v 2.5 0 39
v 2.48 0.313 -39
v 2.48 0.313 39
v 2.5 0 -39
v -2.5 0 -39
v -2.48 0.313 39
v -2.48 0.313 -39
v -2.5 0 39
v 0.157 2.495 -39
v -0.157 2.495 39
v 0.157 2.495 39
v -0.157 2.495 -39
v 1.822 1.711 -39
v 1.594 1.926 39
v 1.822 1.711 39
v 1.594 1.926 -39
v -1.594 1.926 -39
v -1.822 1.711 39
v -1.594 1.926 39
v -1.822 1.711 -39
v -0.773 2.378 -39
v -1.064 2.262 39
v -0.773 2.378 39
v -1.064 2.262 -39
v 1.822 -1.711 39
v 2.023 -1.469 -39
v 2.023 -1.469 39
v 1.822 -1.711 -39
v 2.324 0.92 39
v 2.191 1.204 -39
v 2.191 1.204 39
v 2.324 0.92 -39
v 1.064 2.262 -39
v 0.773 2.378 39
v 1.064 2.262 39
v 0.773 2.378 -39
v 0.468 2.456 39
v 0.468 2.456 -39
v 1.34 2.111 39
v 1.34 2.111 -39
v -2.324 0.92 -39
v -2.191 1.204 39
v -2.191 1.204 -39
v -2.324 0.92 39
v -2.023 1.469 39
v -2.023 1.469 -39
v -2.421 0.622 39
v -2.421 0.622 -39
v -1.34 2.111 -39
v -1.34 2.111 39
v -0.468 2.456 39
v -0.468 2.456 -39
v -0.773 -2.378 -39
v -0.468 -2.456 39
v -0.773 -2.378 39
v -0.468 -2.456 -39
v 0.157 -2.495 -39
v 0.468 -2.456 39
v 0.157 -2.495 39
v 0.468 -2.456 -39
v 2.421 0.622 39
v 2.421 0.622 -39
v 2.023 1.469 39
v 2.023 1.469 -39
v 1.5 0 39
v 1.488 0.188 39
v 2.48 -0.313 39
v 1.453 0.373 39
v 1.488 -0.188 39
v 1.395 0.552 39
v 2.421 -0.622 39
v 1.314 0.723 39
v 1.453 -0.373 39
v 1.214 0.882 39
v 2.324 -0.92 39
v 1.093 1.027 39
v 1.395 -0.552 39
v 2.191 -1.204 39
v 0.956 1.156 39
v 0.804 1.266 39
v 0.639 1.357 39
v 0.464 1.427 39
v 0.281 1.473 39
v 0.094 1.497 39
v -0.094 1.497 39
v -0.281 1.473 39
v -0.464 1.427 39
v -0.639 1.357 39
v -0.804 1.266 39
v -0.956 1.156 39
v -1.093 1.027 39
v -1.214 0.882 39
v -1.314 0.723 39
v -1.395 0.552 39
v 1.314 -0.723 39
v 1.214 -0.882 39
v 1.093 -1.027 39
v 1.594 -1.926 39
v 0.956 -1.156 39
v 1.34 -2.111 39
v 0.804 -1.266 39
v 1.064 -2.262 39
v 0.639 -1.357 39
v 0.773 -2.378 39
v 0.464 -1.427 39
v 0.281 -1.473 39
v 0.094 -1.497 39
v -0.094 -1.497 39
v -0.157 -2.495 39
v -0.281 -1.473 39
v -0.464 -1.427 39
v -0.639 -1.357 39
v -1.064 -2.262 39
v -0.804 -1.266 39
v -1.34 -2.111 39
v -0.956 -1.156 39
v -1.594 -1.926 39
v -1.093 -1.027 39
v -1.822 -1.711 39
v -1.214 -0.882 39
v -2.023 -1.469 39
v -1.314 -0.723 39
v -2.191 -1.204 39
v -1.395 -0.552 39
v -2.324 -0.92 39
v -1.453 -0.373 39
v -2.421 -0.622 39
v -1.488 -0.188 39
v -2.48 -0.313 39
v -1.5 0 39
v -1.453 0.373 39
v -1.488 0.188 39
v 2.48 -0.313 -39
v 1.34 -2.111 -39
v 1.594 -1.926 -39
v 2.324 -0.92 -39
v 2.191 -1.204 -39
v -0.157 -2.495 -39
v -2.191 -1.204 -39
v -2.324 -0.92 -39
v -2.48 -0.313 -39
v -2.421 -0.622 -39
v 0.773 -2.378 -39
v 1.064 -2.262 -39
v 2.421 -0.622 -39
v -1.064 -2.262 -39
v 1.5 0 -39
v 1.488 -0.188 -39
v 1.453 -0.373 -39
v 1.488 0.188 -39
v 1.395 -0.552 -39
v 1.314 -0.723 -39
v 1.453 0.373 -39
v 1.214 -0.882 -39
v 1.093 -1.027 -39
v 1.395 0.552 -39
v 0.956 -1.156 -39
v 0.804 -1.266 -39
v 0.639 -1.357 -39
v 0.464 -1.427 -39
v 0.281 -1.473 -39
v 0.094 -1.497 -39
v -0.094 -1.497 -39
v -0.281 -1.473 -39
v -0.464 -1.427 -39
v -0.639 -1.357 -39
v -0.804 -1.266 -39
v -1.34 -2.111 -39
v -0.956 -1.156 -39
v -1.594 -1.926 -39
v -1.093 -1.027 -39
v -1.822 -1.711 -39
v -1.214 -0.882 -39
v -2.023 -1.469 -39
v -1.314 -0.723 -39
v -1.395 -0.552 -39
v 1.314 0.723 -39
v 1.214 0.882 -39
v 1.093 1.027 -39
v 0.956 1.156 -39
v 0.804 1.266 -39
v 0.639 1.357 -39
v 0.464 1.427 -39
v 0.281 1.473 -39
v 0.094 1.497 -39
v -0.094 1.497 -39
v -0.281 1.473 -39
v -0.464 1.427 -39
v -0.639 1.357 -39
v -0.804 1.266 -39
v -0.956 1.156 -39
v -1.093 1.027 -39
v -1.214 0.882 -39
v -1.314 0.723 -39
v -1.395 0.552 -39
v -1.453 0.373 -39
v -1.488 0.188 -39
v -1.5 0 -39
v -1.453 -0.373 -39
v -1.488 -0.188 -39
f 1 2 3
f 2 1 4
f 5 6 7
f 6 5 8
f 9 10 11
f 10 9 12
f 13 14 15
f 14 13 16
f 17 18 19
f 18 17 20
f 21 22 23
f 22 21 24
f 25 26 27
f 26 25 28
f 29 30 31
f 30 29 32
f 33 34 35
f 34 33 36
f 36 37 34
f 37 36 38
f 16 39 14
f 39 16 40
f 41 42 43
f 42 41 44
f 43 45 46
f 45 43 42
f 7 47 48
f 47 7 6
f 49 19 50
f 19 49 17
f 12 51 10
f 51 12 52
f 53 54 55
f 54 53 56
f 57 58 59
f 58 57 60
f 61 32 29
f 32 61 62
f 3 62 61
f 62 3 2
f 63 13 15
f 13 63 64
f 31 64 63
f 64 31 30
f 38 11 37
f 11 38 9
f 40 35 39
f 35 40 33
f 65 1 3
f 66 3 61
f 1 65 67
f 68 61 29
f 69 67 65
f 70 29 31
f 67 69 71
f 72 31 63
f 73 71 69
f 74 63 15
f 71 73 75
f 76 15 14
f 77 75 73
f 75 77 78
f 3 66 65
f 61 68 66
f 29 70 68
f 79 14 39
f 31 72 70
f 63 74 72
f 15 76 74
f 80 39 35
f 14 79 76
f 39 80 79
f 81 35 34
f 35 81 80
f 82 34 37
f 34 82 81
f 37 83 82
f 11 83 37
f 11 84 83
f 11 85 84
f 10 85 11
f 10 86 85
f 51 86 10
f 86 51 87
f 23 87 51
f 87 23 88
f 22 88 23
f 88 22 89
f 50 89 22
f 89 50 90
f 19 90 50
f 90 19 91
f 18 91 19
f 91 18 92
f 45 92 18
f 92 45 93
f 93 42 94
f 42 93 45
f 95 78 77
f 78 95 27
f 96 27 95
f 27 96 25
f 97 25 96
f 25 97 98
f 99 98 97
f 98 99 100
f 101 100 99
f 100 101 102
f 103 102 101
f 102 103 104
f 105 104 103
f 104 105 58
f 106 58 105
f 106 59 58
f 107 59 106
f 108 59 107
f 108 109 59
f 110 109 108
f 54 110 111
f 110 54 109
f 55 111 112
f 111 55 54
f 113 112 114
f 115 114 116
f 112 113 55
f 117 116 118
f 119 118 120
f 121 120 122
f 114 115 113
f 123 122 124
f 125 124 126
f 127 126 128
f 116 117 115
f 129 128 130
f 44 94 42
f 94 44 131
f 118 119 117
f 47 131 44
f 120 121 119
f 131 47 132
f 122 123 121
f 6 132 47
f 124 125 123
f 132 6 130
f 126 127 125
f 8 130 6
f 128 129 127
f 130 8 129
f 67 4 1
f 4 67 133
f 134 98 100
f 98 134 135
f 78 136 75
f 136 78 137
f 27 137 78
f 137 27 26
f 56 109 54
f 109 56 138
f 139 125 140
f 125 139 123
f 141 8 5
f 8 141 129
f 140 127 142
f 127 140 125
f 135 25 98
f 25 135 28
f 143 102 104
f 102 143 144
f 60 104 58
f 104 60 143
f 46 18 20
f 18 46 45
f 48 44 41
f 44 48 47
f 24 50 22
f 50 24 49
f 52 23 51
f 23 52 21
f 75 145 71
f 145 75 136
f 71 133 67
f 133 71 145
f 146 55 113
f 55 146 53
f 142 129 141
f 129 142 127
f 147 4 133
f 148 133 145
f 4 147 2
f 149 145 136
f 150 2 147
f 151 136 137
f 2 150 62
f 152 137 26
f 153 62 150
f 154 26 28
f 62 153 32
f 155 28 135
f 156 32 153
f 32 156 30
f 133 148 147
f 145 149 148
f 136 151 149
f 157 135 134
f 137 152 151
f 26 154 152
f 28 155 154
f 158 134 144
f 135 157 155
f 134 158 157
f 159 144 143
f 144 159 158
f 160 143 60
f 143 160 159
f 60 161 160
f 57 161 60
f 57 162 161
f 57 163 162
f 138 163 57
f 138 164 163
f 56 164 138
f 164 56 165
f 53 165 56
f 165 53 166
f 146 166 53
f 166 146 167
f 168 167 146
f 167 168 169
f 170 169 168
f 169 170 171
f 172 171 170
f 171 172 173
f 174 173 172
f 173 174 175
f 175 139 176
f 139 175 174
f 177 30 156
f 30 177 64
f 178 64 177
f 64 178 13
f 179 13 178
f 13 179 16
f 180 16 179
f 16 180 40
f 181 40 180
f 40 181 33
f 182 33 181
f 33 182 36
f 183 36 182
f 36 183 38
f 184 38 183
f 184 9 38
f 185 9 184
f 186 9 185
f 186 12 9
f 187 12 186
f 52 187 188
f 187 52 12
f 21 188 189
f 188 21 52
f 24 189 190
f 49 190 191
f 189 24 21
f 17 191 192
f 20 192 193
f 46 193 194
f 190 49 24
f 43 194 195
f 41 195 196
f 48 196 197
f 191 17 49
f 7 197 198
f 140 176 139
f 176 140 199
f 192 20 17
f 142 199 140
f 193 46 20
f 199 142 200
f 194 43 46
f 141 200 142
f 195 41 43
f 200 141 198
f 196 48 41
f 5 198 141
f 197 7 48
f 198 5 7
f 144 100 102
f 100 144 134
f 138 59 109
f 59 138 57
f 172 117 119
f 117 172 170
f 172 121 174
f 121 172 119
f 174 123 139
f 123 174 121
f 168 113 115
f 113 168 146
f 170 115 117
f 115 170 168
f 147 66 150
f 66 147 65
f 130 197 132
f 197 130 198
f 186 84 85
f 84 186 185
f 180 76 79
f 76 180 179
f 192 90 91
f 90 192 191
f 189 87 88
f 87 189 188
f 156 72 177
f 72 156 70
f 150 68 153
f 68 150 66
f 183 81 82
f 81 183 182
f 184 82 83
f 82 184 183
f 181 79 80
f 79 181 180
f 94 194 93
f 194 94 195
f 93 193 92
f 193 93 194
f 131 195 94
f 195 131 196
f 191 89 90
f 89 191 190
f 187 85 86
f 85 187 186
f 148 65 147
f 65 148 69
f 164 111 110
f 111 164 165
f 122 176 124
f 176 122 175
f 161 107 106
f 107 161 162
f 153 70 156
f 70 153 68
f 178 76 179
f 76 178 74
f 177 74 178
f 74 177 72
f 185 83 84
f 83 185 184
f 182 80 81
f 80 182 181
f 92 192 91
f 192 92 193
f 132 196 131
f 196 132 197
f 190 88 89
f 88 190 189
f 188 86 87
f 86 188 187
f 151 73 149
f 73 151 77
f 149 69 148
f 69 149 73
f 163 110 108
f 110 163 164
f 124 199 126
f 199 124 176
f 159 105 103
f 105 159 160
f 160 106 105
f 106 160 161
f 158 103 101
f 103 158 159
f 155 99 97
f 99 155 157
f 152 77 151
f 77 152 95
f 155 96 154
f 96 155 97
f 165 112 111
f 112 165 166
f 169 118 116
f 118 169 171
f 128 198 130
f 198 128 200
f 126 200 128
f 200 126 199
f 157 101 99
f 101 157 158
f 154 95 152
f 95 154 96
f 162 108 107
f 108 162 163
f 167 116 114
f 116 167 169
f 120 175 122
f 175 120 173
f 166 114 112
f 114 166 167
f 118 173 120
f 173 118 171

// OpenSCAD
$fn = 50;


difference() {
	union() {
		translate(v = [0, 0, -39.0000000000]) {
			cylinder(h = 78, r = 2.5000000000);
		}
	}
	union() {
		translate(v = [0, 0, -100.0000000000]) {
			cylinder(h = 200, r = 1.5000000000);
		}
	}
}
